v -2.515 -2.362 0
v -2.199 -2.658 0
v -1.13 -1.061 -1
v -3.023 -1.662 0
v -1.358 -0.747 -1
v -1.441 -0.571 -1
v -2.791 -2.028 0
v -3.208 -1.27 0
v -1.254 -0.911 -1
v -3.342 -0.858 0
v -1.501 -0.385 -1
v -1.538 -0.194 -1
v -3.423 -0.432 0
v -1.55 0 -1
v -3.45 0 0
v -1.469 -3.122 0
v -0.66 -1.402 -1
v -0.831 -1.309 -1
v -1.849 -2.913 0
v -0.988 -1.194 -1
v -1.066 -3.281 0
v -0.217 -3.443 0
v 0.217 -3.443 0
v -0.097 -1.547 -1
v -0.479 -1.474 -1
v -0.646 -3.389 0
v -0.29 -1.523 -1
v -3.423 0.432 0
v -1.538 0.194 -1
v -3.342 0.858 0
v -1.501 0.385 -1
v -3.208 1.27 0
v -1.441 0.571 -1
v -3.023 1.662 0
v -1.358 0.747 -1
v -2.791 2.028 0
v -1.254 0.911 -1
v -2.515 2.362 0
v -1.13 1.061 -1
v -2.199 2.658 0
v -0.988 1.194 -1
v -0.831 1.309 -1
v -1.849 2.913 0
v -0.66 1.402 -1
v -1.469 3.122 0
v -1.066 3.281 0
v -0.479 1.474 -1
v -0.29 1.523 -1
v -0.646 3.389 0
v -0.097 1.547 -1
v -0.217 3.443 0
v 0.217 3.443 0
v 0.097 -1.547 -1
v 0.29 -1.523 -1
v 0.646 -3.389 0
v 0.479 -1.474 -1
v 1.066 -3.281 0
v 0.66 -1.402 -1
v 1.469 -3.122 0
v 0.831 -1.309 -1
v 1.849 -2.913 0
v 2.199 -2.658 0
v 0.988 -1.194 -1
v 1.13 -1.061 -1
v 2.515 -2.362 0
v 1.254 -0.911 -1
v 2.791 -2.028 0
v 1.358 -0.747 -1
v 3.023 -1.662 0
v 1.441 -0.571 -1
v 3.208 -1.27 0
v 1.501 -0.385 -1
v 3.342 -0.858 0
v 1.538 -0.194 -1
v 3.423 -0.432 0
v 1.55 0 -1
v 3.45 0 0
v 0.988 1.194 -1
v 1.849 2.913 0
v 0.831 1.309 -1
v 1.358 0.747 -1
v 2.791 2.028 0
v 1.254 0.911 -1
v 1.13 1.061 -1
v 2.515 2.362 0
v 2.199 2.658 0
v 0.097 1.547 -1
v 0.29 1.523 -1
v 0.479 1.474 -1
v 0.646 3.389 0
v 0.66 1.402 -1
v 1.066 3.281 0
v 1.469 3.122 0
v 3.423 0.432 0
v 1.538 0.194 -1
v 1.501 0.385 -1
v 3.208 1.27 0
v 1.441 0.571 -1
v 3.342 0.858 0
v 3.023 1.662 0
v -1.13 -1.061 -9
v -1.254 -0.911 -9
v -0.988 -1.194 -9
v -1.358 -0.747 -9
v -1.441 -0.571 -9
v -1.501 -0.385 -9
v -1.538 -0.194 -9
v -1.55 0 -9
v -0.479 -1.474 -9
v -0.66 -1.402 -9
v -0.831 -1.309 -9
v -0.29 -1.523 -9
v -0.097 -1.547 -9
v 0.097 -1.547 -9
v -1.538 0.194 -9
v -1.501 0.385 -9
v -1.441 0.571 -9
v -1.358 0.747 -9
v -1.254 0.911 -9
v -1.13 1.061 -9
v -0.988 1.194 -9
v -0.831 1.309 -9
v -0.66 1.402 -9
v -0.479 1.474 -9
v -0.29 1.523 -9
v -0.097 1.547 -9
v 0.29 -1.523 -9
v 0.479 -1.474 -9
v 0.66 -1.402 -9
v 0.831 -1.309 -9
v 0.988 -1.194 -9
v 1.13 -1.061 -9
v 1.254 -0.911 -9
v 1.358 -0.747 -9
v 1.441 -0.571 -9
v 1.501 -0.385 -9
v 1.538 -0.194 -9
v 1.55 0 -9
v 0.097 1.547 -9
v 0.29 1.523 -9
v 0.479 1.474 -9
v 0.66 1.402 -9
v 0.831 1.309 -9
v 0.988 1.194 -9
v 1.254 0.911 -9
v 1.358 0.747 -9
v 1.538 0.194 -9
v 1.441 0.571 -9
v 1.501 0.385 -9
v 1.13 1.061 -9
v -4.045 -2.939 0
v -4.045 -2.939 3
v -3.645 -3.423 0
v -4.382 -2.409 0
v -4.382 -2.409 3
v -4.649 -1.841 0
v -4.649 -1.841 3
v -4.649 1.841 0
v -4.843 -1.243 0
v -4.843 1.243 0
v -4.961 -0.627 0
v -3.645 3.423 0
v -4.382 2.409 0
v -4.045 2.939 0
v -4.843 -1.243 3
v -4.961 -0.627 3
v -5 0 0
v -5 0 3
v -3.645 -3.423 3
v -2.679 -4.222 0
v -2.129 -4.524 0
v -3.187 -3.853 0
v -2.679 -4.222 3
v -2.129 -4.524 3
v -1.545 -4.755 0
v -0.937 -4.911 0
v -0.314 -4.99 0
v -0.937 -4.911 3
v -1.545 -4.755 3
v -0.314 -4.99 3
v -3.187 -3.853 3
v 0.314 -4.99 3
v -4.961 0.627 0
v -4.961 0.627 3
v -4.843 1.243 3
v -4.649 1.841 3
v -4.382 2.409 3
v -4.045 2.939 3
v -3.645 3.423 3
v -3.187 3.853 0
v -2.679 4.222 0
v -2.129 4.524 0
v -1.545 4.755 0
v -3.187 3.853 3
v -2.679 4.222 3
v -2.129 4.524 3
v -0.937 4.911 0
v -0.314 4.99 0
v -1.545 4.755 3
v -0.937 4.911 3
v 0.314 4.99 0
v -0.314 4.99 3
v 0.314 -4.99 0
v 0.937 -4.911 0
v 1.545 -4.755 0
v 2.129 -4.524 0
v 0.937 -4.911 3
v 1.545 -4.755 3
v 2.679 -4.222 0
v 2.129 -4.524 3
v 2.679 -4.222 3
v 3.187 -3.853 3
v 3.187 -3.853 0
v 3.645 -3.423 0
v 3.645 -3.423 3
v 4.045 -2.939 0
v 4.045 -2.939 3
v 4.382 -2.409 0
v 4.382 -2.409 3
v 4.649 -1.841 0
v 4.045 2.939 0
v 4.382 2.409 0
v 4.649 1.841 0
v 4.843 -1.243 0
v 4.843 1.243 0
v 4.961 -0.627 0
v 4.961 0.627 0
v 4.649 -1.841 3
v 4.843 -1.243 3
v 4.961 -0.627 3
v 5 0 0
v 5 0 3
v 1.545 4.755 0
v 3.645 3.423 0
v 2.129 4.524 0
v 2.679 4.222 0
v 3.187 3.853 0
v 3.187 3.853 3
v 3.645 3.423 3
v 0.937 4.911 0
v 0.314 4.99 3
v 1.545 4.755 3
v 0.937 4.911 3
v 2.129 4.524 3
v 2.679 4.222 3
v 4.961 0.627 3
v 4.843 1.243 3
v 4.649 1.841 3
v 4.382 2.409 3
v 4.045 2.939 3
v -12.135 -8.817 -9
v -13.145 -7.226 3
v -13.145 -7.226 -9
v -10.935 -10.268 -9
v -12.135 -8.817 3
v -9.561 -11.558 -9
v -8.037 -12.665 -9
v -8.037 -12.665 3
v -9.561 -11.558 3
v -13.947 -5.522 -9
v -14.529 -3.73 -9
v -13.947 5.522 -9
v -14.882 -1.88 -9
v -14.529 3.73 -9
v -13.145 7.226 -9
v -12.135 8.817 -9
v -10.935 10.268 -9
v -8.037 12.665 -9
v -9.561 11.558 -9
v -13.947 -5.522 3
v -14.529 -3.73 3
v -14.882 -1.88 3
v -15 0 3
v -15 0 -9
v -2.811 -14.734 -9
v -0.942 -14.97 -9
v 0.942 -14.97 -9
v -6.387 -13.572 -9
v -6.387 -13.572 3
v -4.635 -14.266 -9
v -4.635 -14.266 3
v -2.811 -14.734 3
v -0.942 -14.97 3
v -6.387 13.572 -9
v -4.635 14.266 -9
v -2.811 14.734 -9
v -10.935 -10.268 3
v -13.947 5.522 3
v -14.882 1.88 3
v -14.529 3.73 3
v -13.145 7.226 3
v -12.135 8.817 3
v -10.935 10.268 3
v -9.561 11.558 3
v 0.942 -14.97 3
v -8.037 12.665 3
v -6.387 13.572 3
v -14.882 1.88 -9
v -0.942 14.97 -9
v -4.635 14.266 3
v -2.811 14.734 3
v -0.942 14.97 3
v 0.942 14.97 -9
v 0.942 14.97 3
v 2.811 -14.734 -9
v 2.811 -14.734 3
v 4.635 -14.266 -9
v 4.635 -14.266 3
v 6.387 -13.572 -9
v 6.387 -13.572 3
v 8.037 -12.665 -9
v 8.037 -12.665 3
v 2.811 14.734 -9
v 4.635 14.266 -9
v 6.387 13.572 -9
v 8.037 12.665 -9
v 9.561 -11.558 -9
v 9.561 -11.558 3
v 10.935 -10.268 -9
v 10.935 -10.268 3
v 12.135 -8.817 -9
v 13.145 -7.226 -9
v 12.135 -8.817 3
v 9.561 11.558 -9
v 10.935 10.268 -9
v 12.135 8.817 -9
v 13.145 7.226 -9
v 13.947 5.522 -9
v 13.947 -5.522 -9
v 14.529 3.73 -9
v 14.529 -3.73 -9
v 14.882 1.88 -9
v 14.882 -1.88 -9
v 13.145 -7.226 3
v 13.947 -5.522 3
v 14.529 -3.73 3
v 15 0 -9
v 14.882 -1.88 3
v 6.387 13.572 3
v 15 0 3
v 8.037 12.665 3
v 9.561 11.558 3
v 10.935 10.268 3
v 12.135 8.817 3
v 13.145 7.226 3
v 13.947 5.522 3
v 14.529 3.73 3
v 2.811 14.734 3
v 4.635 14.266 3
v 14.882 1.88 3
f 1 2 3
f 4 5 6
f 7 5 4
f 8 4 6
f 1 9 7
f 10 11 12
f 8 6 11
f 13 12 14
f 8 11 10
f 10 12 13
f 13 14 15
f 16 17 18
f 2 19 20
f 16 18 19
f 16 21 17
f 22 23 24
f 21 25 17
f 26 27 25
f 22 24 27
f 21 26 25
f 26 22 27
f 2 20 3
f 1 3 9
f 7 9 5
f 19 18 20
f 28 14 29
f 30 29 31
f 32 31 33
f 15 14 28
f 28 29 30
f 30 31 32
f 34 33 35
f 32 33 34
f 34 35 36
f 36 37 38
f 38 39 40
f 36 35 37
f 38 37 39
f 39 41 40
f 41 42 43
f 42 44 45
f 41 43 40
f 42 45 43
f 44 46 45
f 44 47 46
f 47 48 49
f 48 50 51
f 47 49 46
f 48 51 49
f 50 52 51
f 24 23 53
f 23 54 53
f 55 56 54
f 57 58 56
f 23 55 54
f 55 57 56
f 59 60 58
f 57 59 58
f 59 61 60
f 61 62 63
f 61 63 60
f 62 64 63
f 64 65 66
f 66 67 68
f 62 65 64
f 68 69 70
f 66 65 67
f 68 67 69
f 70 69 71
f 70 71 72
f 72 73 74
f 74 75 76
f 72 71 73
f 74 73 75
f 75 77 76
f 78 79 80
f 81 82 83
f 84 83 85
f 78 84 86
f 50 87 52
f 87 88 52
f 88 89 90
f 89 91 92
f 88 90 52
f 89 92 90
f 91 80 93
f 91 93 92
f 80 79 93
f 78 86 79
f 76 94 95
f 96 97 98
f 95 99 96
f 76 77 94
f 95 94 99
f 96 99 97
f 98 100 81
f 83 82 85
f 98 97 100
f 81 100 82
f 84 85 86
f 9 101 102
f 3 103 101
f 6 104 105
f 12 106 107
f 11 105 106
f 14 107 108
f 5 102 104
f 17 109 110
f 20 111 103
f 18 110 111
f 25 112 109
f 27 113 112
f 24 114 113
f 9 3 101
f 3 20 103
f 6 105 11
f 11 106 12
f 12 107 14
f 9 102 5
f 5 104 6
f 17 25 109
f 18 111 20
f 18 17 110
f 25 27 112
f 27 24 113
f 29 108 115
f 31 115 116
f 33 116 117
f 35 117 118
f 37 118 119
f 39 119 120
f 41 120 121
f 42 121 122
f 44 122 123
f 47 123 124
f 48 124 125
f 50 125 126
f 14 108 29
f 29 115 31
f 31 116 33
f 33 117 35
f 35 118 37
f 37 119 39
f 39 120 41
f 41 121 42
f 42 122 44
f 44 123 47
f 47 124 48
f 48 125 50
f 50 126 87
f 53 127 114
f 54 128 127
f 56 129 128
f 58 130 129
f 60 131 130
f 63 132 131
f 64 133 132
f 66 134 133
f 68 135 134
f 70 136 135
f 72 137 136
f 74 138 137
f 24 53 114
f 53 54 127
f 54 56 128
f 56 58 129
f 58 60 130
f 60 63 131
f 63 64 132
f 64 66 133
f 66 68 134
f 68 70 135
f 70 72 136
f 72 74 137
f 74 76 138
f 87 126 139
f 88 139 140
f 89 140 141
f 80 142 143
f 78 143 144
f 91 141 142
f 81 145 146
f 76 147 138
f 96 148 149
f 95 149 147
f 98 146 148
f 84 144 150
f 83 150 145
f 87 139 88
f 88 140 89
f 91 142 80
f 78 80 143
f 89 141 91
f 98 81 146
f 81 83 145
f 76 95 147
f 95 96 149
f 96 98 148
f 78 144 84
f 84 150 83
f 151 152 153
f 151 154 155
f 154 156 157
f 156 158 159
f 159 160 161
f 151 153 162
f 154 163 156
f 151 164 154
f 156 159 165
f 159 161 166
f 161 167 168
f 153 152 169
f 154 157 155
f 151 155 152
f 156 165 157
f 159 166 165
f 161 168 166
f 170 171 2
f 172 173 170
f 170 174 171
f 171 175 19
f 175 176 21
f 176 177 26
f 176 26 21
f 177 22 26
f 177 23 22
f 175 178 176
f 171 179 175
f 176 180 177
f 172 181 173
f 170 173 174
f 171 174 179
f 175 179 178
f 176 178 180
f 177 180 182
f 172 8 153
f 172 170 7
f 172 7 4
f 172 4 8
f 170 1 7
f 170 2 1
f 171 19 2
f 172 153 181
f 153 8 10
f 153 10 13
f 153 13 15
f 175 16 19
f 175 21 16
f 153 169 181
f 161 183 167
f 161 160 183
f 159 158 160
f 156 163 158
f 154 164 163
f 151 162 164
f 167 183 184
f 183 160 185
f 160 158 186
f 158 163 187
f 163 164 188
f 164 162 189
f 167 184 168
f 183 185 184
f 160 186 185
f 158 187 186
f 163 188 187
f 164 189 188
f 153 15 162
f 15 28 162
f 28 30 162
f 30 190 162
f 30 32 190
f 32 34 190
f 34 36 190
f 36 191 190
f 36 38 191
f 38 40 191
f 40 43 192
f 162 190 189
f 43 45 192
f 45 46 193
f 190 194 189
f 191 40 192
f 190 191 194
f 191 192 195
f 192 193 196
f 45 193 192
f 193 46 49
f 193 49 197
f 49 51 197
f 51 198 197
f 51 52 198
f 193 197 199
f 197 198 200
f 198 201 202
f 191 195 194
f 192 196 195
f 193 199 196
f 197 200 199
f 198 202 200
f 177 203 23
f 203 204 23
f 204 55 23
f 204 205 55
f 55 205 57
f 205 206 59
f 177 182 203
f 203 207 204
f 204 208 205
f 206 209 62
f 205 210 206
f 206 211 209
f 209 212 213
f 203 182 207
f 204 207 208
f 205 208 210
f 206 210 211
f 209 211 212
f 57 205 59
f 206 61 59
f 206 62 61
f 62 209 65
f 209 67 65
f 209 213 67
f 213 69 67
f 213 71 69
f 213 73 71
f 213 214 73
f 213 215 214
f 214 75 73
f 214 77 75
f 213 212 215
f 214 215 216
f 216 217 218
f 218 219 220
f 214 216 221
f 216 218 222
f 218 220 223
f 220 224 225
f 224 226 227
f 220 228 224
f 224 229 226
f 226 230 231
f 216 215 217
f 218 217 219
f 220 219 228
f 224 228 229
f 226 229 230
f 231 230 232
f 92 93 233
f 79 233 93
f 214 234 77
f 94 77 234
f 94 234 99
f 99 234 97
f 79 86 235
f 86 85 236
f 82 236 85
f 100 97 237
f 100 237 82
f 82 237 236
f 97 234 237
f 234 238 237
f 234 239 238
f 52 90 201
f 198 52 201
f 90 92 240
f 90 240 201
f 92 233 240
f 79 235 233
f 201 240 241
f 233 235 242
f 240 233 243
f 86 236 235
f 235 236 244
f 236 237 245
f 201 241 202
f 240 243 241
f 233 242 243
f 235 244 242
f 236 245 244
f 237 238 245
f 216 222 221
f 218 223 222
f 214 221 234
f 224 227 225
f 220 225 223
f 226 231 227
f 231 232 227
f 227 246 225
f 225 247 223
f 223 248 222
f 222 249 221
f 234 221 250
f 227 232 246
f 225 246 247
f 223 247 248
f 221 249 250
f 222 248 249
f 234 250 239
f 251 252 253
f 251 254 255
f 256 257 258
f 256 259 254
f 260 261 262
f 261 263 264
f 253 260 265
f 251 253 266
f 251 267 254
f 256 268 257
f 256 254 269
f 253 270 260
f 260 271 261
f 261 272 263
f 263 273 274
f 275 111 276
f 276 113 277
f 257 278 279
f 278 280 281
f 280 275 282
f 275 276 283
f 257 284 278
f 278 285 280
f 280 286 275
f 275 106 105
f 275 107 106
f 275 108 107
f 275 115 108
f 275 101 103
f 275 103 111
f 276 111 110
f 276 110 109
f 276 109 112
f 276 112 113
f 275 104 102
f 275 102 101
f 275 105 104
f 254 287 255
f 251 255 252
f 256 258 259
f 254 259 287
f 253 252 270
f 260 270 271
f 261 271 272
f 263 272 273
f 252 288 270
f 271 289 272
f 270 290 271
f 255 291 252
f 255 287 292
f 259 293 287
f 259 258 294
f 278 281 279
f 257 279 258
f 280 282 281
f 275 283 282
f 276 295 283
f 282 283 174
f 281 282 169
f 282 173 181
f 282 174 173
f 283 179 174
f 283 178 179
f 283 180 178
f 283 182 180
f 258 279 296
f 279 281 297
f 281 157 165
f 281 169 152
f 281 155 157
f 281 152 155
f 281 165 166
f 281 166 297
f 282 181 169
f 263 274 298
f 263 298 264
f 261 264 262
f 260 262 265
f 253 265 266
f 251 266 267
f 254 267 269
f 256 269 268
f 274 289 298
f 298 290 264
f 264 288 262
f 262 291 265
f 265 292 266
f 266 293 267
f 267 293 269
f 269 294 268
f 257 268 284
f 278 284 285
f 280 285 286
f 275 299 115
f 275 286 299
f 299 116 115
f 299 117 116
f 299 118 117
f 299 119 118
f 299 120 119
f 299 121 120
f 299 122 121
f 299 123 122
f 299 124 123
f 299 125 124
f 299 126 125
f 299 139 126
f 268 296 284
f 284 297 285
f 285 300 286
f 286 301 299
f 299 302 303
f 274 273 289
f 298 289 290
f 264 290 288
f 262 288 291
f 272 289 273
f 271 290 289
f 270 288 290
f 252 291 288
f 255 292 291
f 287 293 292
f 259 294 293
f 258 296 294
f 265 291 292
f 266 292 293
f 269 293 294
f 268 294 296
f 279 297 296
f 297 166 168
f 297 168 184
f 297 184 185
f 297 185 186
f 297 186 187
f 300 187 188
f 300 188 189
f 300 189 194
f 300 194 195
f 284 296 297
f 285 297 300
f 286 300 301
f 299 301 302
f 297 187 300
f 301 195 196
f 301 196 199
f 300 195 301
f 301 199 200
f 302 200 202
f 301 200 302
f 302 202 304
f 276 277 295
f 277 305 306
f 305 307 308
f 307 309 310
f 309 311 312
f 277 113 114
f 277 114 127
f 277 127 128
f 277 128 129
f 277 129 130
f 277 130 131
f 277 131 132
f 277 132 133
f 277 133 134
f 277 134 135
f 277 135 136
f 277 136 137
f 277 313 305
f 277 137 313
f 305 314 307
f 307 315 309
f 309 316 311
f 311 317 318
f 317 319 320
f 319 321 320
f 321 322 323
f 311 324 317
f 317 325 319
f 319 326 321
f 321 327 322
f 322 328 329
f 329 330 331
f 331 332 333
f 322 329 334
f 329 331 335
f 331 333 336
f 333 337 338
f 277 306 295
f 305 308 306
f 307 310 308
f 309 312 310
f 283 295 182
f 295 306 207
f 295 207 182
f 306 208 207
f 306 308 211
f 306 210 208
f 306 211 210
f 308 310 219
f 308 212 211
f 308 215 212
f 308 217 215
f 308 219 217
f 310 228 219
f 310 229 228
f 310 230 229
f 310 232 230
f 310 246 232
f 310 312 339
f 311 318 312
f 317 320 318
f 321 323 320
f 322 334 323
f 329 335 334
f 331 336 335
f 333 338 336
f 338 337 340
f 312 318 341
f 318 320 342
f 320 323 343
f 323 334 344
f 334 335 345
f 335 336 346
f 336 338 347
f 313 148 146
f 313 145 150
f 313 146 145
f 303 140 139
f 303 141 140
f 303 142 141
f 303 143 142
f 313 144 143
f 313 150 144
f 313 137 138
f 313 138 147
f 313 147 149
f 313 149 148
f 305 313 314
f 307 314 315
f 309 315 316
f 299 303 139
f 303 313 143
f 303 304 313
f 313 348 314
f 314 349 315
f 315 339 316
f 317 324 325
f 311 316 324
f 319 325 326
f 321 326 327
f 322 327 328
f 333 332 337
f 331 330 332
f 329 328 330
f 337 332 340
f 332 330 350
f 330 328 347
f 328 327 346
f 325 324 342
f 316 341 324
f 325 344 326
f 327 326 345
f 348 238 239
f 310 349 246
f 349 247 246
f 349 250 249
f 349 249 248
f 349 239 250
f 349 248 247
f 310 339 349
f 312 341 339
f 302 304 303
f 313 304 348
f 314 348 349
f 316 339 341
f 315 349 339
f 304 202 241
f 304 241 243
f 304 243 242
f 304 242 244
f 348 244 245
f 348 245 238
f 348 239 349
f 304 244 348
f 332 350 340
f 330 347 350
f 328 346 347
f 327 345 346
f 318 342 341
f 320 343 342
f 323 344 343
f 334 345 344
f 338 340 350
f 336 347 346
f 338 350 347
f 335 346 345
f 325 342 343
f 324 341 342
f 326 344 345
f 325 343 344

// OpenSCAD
$fn = 50;

difference() {
	union() {
		translate(v = [0, 0, -9.0]) {
			cylinder(h = 12, r = 15.0);
		}
	}
	union() {
		translate(v = [0, 0, 0]) {
			rotate(a = [0, 0, 0]) {
				difference() {
					union() {
						translate(v = [0, 0, -12.0]) {
							cylinder(h = 12, r = 1.25);
						}
						translate(v = [0, 0, -1.0]) {
							cylinder(h = 1.0, r1 = 1.55, r2 = 3.45);
						}
						translate(v = [0, 0, -12.0]) {
							cylinder(h = 12, r = 1.55);
						}
						translate(v = [0, 0, -12.0]) {
							cylinder(h = 12, r = 1.25);
						}
					}
					union();
				}
			}
		}
		#cylinder(h = 3, r = 5.0);
	}
}
